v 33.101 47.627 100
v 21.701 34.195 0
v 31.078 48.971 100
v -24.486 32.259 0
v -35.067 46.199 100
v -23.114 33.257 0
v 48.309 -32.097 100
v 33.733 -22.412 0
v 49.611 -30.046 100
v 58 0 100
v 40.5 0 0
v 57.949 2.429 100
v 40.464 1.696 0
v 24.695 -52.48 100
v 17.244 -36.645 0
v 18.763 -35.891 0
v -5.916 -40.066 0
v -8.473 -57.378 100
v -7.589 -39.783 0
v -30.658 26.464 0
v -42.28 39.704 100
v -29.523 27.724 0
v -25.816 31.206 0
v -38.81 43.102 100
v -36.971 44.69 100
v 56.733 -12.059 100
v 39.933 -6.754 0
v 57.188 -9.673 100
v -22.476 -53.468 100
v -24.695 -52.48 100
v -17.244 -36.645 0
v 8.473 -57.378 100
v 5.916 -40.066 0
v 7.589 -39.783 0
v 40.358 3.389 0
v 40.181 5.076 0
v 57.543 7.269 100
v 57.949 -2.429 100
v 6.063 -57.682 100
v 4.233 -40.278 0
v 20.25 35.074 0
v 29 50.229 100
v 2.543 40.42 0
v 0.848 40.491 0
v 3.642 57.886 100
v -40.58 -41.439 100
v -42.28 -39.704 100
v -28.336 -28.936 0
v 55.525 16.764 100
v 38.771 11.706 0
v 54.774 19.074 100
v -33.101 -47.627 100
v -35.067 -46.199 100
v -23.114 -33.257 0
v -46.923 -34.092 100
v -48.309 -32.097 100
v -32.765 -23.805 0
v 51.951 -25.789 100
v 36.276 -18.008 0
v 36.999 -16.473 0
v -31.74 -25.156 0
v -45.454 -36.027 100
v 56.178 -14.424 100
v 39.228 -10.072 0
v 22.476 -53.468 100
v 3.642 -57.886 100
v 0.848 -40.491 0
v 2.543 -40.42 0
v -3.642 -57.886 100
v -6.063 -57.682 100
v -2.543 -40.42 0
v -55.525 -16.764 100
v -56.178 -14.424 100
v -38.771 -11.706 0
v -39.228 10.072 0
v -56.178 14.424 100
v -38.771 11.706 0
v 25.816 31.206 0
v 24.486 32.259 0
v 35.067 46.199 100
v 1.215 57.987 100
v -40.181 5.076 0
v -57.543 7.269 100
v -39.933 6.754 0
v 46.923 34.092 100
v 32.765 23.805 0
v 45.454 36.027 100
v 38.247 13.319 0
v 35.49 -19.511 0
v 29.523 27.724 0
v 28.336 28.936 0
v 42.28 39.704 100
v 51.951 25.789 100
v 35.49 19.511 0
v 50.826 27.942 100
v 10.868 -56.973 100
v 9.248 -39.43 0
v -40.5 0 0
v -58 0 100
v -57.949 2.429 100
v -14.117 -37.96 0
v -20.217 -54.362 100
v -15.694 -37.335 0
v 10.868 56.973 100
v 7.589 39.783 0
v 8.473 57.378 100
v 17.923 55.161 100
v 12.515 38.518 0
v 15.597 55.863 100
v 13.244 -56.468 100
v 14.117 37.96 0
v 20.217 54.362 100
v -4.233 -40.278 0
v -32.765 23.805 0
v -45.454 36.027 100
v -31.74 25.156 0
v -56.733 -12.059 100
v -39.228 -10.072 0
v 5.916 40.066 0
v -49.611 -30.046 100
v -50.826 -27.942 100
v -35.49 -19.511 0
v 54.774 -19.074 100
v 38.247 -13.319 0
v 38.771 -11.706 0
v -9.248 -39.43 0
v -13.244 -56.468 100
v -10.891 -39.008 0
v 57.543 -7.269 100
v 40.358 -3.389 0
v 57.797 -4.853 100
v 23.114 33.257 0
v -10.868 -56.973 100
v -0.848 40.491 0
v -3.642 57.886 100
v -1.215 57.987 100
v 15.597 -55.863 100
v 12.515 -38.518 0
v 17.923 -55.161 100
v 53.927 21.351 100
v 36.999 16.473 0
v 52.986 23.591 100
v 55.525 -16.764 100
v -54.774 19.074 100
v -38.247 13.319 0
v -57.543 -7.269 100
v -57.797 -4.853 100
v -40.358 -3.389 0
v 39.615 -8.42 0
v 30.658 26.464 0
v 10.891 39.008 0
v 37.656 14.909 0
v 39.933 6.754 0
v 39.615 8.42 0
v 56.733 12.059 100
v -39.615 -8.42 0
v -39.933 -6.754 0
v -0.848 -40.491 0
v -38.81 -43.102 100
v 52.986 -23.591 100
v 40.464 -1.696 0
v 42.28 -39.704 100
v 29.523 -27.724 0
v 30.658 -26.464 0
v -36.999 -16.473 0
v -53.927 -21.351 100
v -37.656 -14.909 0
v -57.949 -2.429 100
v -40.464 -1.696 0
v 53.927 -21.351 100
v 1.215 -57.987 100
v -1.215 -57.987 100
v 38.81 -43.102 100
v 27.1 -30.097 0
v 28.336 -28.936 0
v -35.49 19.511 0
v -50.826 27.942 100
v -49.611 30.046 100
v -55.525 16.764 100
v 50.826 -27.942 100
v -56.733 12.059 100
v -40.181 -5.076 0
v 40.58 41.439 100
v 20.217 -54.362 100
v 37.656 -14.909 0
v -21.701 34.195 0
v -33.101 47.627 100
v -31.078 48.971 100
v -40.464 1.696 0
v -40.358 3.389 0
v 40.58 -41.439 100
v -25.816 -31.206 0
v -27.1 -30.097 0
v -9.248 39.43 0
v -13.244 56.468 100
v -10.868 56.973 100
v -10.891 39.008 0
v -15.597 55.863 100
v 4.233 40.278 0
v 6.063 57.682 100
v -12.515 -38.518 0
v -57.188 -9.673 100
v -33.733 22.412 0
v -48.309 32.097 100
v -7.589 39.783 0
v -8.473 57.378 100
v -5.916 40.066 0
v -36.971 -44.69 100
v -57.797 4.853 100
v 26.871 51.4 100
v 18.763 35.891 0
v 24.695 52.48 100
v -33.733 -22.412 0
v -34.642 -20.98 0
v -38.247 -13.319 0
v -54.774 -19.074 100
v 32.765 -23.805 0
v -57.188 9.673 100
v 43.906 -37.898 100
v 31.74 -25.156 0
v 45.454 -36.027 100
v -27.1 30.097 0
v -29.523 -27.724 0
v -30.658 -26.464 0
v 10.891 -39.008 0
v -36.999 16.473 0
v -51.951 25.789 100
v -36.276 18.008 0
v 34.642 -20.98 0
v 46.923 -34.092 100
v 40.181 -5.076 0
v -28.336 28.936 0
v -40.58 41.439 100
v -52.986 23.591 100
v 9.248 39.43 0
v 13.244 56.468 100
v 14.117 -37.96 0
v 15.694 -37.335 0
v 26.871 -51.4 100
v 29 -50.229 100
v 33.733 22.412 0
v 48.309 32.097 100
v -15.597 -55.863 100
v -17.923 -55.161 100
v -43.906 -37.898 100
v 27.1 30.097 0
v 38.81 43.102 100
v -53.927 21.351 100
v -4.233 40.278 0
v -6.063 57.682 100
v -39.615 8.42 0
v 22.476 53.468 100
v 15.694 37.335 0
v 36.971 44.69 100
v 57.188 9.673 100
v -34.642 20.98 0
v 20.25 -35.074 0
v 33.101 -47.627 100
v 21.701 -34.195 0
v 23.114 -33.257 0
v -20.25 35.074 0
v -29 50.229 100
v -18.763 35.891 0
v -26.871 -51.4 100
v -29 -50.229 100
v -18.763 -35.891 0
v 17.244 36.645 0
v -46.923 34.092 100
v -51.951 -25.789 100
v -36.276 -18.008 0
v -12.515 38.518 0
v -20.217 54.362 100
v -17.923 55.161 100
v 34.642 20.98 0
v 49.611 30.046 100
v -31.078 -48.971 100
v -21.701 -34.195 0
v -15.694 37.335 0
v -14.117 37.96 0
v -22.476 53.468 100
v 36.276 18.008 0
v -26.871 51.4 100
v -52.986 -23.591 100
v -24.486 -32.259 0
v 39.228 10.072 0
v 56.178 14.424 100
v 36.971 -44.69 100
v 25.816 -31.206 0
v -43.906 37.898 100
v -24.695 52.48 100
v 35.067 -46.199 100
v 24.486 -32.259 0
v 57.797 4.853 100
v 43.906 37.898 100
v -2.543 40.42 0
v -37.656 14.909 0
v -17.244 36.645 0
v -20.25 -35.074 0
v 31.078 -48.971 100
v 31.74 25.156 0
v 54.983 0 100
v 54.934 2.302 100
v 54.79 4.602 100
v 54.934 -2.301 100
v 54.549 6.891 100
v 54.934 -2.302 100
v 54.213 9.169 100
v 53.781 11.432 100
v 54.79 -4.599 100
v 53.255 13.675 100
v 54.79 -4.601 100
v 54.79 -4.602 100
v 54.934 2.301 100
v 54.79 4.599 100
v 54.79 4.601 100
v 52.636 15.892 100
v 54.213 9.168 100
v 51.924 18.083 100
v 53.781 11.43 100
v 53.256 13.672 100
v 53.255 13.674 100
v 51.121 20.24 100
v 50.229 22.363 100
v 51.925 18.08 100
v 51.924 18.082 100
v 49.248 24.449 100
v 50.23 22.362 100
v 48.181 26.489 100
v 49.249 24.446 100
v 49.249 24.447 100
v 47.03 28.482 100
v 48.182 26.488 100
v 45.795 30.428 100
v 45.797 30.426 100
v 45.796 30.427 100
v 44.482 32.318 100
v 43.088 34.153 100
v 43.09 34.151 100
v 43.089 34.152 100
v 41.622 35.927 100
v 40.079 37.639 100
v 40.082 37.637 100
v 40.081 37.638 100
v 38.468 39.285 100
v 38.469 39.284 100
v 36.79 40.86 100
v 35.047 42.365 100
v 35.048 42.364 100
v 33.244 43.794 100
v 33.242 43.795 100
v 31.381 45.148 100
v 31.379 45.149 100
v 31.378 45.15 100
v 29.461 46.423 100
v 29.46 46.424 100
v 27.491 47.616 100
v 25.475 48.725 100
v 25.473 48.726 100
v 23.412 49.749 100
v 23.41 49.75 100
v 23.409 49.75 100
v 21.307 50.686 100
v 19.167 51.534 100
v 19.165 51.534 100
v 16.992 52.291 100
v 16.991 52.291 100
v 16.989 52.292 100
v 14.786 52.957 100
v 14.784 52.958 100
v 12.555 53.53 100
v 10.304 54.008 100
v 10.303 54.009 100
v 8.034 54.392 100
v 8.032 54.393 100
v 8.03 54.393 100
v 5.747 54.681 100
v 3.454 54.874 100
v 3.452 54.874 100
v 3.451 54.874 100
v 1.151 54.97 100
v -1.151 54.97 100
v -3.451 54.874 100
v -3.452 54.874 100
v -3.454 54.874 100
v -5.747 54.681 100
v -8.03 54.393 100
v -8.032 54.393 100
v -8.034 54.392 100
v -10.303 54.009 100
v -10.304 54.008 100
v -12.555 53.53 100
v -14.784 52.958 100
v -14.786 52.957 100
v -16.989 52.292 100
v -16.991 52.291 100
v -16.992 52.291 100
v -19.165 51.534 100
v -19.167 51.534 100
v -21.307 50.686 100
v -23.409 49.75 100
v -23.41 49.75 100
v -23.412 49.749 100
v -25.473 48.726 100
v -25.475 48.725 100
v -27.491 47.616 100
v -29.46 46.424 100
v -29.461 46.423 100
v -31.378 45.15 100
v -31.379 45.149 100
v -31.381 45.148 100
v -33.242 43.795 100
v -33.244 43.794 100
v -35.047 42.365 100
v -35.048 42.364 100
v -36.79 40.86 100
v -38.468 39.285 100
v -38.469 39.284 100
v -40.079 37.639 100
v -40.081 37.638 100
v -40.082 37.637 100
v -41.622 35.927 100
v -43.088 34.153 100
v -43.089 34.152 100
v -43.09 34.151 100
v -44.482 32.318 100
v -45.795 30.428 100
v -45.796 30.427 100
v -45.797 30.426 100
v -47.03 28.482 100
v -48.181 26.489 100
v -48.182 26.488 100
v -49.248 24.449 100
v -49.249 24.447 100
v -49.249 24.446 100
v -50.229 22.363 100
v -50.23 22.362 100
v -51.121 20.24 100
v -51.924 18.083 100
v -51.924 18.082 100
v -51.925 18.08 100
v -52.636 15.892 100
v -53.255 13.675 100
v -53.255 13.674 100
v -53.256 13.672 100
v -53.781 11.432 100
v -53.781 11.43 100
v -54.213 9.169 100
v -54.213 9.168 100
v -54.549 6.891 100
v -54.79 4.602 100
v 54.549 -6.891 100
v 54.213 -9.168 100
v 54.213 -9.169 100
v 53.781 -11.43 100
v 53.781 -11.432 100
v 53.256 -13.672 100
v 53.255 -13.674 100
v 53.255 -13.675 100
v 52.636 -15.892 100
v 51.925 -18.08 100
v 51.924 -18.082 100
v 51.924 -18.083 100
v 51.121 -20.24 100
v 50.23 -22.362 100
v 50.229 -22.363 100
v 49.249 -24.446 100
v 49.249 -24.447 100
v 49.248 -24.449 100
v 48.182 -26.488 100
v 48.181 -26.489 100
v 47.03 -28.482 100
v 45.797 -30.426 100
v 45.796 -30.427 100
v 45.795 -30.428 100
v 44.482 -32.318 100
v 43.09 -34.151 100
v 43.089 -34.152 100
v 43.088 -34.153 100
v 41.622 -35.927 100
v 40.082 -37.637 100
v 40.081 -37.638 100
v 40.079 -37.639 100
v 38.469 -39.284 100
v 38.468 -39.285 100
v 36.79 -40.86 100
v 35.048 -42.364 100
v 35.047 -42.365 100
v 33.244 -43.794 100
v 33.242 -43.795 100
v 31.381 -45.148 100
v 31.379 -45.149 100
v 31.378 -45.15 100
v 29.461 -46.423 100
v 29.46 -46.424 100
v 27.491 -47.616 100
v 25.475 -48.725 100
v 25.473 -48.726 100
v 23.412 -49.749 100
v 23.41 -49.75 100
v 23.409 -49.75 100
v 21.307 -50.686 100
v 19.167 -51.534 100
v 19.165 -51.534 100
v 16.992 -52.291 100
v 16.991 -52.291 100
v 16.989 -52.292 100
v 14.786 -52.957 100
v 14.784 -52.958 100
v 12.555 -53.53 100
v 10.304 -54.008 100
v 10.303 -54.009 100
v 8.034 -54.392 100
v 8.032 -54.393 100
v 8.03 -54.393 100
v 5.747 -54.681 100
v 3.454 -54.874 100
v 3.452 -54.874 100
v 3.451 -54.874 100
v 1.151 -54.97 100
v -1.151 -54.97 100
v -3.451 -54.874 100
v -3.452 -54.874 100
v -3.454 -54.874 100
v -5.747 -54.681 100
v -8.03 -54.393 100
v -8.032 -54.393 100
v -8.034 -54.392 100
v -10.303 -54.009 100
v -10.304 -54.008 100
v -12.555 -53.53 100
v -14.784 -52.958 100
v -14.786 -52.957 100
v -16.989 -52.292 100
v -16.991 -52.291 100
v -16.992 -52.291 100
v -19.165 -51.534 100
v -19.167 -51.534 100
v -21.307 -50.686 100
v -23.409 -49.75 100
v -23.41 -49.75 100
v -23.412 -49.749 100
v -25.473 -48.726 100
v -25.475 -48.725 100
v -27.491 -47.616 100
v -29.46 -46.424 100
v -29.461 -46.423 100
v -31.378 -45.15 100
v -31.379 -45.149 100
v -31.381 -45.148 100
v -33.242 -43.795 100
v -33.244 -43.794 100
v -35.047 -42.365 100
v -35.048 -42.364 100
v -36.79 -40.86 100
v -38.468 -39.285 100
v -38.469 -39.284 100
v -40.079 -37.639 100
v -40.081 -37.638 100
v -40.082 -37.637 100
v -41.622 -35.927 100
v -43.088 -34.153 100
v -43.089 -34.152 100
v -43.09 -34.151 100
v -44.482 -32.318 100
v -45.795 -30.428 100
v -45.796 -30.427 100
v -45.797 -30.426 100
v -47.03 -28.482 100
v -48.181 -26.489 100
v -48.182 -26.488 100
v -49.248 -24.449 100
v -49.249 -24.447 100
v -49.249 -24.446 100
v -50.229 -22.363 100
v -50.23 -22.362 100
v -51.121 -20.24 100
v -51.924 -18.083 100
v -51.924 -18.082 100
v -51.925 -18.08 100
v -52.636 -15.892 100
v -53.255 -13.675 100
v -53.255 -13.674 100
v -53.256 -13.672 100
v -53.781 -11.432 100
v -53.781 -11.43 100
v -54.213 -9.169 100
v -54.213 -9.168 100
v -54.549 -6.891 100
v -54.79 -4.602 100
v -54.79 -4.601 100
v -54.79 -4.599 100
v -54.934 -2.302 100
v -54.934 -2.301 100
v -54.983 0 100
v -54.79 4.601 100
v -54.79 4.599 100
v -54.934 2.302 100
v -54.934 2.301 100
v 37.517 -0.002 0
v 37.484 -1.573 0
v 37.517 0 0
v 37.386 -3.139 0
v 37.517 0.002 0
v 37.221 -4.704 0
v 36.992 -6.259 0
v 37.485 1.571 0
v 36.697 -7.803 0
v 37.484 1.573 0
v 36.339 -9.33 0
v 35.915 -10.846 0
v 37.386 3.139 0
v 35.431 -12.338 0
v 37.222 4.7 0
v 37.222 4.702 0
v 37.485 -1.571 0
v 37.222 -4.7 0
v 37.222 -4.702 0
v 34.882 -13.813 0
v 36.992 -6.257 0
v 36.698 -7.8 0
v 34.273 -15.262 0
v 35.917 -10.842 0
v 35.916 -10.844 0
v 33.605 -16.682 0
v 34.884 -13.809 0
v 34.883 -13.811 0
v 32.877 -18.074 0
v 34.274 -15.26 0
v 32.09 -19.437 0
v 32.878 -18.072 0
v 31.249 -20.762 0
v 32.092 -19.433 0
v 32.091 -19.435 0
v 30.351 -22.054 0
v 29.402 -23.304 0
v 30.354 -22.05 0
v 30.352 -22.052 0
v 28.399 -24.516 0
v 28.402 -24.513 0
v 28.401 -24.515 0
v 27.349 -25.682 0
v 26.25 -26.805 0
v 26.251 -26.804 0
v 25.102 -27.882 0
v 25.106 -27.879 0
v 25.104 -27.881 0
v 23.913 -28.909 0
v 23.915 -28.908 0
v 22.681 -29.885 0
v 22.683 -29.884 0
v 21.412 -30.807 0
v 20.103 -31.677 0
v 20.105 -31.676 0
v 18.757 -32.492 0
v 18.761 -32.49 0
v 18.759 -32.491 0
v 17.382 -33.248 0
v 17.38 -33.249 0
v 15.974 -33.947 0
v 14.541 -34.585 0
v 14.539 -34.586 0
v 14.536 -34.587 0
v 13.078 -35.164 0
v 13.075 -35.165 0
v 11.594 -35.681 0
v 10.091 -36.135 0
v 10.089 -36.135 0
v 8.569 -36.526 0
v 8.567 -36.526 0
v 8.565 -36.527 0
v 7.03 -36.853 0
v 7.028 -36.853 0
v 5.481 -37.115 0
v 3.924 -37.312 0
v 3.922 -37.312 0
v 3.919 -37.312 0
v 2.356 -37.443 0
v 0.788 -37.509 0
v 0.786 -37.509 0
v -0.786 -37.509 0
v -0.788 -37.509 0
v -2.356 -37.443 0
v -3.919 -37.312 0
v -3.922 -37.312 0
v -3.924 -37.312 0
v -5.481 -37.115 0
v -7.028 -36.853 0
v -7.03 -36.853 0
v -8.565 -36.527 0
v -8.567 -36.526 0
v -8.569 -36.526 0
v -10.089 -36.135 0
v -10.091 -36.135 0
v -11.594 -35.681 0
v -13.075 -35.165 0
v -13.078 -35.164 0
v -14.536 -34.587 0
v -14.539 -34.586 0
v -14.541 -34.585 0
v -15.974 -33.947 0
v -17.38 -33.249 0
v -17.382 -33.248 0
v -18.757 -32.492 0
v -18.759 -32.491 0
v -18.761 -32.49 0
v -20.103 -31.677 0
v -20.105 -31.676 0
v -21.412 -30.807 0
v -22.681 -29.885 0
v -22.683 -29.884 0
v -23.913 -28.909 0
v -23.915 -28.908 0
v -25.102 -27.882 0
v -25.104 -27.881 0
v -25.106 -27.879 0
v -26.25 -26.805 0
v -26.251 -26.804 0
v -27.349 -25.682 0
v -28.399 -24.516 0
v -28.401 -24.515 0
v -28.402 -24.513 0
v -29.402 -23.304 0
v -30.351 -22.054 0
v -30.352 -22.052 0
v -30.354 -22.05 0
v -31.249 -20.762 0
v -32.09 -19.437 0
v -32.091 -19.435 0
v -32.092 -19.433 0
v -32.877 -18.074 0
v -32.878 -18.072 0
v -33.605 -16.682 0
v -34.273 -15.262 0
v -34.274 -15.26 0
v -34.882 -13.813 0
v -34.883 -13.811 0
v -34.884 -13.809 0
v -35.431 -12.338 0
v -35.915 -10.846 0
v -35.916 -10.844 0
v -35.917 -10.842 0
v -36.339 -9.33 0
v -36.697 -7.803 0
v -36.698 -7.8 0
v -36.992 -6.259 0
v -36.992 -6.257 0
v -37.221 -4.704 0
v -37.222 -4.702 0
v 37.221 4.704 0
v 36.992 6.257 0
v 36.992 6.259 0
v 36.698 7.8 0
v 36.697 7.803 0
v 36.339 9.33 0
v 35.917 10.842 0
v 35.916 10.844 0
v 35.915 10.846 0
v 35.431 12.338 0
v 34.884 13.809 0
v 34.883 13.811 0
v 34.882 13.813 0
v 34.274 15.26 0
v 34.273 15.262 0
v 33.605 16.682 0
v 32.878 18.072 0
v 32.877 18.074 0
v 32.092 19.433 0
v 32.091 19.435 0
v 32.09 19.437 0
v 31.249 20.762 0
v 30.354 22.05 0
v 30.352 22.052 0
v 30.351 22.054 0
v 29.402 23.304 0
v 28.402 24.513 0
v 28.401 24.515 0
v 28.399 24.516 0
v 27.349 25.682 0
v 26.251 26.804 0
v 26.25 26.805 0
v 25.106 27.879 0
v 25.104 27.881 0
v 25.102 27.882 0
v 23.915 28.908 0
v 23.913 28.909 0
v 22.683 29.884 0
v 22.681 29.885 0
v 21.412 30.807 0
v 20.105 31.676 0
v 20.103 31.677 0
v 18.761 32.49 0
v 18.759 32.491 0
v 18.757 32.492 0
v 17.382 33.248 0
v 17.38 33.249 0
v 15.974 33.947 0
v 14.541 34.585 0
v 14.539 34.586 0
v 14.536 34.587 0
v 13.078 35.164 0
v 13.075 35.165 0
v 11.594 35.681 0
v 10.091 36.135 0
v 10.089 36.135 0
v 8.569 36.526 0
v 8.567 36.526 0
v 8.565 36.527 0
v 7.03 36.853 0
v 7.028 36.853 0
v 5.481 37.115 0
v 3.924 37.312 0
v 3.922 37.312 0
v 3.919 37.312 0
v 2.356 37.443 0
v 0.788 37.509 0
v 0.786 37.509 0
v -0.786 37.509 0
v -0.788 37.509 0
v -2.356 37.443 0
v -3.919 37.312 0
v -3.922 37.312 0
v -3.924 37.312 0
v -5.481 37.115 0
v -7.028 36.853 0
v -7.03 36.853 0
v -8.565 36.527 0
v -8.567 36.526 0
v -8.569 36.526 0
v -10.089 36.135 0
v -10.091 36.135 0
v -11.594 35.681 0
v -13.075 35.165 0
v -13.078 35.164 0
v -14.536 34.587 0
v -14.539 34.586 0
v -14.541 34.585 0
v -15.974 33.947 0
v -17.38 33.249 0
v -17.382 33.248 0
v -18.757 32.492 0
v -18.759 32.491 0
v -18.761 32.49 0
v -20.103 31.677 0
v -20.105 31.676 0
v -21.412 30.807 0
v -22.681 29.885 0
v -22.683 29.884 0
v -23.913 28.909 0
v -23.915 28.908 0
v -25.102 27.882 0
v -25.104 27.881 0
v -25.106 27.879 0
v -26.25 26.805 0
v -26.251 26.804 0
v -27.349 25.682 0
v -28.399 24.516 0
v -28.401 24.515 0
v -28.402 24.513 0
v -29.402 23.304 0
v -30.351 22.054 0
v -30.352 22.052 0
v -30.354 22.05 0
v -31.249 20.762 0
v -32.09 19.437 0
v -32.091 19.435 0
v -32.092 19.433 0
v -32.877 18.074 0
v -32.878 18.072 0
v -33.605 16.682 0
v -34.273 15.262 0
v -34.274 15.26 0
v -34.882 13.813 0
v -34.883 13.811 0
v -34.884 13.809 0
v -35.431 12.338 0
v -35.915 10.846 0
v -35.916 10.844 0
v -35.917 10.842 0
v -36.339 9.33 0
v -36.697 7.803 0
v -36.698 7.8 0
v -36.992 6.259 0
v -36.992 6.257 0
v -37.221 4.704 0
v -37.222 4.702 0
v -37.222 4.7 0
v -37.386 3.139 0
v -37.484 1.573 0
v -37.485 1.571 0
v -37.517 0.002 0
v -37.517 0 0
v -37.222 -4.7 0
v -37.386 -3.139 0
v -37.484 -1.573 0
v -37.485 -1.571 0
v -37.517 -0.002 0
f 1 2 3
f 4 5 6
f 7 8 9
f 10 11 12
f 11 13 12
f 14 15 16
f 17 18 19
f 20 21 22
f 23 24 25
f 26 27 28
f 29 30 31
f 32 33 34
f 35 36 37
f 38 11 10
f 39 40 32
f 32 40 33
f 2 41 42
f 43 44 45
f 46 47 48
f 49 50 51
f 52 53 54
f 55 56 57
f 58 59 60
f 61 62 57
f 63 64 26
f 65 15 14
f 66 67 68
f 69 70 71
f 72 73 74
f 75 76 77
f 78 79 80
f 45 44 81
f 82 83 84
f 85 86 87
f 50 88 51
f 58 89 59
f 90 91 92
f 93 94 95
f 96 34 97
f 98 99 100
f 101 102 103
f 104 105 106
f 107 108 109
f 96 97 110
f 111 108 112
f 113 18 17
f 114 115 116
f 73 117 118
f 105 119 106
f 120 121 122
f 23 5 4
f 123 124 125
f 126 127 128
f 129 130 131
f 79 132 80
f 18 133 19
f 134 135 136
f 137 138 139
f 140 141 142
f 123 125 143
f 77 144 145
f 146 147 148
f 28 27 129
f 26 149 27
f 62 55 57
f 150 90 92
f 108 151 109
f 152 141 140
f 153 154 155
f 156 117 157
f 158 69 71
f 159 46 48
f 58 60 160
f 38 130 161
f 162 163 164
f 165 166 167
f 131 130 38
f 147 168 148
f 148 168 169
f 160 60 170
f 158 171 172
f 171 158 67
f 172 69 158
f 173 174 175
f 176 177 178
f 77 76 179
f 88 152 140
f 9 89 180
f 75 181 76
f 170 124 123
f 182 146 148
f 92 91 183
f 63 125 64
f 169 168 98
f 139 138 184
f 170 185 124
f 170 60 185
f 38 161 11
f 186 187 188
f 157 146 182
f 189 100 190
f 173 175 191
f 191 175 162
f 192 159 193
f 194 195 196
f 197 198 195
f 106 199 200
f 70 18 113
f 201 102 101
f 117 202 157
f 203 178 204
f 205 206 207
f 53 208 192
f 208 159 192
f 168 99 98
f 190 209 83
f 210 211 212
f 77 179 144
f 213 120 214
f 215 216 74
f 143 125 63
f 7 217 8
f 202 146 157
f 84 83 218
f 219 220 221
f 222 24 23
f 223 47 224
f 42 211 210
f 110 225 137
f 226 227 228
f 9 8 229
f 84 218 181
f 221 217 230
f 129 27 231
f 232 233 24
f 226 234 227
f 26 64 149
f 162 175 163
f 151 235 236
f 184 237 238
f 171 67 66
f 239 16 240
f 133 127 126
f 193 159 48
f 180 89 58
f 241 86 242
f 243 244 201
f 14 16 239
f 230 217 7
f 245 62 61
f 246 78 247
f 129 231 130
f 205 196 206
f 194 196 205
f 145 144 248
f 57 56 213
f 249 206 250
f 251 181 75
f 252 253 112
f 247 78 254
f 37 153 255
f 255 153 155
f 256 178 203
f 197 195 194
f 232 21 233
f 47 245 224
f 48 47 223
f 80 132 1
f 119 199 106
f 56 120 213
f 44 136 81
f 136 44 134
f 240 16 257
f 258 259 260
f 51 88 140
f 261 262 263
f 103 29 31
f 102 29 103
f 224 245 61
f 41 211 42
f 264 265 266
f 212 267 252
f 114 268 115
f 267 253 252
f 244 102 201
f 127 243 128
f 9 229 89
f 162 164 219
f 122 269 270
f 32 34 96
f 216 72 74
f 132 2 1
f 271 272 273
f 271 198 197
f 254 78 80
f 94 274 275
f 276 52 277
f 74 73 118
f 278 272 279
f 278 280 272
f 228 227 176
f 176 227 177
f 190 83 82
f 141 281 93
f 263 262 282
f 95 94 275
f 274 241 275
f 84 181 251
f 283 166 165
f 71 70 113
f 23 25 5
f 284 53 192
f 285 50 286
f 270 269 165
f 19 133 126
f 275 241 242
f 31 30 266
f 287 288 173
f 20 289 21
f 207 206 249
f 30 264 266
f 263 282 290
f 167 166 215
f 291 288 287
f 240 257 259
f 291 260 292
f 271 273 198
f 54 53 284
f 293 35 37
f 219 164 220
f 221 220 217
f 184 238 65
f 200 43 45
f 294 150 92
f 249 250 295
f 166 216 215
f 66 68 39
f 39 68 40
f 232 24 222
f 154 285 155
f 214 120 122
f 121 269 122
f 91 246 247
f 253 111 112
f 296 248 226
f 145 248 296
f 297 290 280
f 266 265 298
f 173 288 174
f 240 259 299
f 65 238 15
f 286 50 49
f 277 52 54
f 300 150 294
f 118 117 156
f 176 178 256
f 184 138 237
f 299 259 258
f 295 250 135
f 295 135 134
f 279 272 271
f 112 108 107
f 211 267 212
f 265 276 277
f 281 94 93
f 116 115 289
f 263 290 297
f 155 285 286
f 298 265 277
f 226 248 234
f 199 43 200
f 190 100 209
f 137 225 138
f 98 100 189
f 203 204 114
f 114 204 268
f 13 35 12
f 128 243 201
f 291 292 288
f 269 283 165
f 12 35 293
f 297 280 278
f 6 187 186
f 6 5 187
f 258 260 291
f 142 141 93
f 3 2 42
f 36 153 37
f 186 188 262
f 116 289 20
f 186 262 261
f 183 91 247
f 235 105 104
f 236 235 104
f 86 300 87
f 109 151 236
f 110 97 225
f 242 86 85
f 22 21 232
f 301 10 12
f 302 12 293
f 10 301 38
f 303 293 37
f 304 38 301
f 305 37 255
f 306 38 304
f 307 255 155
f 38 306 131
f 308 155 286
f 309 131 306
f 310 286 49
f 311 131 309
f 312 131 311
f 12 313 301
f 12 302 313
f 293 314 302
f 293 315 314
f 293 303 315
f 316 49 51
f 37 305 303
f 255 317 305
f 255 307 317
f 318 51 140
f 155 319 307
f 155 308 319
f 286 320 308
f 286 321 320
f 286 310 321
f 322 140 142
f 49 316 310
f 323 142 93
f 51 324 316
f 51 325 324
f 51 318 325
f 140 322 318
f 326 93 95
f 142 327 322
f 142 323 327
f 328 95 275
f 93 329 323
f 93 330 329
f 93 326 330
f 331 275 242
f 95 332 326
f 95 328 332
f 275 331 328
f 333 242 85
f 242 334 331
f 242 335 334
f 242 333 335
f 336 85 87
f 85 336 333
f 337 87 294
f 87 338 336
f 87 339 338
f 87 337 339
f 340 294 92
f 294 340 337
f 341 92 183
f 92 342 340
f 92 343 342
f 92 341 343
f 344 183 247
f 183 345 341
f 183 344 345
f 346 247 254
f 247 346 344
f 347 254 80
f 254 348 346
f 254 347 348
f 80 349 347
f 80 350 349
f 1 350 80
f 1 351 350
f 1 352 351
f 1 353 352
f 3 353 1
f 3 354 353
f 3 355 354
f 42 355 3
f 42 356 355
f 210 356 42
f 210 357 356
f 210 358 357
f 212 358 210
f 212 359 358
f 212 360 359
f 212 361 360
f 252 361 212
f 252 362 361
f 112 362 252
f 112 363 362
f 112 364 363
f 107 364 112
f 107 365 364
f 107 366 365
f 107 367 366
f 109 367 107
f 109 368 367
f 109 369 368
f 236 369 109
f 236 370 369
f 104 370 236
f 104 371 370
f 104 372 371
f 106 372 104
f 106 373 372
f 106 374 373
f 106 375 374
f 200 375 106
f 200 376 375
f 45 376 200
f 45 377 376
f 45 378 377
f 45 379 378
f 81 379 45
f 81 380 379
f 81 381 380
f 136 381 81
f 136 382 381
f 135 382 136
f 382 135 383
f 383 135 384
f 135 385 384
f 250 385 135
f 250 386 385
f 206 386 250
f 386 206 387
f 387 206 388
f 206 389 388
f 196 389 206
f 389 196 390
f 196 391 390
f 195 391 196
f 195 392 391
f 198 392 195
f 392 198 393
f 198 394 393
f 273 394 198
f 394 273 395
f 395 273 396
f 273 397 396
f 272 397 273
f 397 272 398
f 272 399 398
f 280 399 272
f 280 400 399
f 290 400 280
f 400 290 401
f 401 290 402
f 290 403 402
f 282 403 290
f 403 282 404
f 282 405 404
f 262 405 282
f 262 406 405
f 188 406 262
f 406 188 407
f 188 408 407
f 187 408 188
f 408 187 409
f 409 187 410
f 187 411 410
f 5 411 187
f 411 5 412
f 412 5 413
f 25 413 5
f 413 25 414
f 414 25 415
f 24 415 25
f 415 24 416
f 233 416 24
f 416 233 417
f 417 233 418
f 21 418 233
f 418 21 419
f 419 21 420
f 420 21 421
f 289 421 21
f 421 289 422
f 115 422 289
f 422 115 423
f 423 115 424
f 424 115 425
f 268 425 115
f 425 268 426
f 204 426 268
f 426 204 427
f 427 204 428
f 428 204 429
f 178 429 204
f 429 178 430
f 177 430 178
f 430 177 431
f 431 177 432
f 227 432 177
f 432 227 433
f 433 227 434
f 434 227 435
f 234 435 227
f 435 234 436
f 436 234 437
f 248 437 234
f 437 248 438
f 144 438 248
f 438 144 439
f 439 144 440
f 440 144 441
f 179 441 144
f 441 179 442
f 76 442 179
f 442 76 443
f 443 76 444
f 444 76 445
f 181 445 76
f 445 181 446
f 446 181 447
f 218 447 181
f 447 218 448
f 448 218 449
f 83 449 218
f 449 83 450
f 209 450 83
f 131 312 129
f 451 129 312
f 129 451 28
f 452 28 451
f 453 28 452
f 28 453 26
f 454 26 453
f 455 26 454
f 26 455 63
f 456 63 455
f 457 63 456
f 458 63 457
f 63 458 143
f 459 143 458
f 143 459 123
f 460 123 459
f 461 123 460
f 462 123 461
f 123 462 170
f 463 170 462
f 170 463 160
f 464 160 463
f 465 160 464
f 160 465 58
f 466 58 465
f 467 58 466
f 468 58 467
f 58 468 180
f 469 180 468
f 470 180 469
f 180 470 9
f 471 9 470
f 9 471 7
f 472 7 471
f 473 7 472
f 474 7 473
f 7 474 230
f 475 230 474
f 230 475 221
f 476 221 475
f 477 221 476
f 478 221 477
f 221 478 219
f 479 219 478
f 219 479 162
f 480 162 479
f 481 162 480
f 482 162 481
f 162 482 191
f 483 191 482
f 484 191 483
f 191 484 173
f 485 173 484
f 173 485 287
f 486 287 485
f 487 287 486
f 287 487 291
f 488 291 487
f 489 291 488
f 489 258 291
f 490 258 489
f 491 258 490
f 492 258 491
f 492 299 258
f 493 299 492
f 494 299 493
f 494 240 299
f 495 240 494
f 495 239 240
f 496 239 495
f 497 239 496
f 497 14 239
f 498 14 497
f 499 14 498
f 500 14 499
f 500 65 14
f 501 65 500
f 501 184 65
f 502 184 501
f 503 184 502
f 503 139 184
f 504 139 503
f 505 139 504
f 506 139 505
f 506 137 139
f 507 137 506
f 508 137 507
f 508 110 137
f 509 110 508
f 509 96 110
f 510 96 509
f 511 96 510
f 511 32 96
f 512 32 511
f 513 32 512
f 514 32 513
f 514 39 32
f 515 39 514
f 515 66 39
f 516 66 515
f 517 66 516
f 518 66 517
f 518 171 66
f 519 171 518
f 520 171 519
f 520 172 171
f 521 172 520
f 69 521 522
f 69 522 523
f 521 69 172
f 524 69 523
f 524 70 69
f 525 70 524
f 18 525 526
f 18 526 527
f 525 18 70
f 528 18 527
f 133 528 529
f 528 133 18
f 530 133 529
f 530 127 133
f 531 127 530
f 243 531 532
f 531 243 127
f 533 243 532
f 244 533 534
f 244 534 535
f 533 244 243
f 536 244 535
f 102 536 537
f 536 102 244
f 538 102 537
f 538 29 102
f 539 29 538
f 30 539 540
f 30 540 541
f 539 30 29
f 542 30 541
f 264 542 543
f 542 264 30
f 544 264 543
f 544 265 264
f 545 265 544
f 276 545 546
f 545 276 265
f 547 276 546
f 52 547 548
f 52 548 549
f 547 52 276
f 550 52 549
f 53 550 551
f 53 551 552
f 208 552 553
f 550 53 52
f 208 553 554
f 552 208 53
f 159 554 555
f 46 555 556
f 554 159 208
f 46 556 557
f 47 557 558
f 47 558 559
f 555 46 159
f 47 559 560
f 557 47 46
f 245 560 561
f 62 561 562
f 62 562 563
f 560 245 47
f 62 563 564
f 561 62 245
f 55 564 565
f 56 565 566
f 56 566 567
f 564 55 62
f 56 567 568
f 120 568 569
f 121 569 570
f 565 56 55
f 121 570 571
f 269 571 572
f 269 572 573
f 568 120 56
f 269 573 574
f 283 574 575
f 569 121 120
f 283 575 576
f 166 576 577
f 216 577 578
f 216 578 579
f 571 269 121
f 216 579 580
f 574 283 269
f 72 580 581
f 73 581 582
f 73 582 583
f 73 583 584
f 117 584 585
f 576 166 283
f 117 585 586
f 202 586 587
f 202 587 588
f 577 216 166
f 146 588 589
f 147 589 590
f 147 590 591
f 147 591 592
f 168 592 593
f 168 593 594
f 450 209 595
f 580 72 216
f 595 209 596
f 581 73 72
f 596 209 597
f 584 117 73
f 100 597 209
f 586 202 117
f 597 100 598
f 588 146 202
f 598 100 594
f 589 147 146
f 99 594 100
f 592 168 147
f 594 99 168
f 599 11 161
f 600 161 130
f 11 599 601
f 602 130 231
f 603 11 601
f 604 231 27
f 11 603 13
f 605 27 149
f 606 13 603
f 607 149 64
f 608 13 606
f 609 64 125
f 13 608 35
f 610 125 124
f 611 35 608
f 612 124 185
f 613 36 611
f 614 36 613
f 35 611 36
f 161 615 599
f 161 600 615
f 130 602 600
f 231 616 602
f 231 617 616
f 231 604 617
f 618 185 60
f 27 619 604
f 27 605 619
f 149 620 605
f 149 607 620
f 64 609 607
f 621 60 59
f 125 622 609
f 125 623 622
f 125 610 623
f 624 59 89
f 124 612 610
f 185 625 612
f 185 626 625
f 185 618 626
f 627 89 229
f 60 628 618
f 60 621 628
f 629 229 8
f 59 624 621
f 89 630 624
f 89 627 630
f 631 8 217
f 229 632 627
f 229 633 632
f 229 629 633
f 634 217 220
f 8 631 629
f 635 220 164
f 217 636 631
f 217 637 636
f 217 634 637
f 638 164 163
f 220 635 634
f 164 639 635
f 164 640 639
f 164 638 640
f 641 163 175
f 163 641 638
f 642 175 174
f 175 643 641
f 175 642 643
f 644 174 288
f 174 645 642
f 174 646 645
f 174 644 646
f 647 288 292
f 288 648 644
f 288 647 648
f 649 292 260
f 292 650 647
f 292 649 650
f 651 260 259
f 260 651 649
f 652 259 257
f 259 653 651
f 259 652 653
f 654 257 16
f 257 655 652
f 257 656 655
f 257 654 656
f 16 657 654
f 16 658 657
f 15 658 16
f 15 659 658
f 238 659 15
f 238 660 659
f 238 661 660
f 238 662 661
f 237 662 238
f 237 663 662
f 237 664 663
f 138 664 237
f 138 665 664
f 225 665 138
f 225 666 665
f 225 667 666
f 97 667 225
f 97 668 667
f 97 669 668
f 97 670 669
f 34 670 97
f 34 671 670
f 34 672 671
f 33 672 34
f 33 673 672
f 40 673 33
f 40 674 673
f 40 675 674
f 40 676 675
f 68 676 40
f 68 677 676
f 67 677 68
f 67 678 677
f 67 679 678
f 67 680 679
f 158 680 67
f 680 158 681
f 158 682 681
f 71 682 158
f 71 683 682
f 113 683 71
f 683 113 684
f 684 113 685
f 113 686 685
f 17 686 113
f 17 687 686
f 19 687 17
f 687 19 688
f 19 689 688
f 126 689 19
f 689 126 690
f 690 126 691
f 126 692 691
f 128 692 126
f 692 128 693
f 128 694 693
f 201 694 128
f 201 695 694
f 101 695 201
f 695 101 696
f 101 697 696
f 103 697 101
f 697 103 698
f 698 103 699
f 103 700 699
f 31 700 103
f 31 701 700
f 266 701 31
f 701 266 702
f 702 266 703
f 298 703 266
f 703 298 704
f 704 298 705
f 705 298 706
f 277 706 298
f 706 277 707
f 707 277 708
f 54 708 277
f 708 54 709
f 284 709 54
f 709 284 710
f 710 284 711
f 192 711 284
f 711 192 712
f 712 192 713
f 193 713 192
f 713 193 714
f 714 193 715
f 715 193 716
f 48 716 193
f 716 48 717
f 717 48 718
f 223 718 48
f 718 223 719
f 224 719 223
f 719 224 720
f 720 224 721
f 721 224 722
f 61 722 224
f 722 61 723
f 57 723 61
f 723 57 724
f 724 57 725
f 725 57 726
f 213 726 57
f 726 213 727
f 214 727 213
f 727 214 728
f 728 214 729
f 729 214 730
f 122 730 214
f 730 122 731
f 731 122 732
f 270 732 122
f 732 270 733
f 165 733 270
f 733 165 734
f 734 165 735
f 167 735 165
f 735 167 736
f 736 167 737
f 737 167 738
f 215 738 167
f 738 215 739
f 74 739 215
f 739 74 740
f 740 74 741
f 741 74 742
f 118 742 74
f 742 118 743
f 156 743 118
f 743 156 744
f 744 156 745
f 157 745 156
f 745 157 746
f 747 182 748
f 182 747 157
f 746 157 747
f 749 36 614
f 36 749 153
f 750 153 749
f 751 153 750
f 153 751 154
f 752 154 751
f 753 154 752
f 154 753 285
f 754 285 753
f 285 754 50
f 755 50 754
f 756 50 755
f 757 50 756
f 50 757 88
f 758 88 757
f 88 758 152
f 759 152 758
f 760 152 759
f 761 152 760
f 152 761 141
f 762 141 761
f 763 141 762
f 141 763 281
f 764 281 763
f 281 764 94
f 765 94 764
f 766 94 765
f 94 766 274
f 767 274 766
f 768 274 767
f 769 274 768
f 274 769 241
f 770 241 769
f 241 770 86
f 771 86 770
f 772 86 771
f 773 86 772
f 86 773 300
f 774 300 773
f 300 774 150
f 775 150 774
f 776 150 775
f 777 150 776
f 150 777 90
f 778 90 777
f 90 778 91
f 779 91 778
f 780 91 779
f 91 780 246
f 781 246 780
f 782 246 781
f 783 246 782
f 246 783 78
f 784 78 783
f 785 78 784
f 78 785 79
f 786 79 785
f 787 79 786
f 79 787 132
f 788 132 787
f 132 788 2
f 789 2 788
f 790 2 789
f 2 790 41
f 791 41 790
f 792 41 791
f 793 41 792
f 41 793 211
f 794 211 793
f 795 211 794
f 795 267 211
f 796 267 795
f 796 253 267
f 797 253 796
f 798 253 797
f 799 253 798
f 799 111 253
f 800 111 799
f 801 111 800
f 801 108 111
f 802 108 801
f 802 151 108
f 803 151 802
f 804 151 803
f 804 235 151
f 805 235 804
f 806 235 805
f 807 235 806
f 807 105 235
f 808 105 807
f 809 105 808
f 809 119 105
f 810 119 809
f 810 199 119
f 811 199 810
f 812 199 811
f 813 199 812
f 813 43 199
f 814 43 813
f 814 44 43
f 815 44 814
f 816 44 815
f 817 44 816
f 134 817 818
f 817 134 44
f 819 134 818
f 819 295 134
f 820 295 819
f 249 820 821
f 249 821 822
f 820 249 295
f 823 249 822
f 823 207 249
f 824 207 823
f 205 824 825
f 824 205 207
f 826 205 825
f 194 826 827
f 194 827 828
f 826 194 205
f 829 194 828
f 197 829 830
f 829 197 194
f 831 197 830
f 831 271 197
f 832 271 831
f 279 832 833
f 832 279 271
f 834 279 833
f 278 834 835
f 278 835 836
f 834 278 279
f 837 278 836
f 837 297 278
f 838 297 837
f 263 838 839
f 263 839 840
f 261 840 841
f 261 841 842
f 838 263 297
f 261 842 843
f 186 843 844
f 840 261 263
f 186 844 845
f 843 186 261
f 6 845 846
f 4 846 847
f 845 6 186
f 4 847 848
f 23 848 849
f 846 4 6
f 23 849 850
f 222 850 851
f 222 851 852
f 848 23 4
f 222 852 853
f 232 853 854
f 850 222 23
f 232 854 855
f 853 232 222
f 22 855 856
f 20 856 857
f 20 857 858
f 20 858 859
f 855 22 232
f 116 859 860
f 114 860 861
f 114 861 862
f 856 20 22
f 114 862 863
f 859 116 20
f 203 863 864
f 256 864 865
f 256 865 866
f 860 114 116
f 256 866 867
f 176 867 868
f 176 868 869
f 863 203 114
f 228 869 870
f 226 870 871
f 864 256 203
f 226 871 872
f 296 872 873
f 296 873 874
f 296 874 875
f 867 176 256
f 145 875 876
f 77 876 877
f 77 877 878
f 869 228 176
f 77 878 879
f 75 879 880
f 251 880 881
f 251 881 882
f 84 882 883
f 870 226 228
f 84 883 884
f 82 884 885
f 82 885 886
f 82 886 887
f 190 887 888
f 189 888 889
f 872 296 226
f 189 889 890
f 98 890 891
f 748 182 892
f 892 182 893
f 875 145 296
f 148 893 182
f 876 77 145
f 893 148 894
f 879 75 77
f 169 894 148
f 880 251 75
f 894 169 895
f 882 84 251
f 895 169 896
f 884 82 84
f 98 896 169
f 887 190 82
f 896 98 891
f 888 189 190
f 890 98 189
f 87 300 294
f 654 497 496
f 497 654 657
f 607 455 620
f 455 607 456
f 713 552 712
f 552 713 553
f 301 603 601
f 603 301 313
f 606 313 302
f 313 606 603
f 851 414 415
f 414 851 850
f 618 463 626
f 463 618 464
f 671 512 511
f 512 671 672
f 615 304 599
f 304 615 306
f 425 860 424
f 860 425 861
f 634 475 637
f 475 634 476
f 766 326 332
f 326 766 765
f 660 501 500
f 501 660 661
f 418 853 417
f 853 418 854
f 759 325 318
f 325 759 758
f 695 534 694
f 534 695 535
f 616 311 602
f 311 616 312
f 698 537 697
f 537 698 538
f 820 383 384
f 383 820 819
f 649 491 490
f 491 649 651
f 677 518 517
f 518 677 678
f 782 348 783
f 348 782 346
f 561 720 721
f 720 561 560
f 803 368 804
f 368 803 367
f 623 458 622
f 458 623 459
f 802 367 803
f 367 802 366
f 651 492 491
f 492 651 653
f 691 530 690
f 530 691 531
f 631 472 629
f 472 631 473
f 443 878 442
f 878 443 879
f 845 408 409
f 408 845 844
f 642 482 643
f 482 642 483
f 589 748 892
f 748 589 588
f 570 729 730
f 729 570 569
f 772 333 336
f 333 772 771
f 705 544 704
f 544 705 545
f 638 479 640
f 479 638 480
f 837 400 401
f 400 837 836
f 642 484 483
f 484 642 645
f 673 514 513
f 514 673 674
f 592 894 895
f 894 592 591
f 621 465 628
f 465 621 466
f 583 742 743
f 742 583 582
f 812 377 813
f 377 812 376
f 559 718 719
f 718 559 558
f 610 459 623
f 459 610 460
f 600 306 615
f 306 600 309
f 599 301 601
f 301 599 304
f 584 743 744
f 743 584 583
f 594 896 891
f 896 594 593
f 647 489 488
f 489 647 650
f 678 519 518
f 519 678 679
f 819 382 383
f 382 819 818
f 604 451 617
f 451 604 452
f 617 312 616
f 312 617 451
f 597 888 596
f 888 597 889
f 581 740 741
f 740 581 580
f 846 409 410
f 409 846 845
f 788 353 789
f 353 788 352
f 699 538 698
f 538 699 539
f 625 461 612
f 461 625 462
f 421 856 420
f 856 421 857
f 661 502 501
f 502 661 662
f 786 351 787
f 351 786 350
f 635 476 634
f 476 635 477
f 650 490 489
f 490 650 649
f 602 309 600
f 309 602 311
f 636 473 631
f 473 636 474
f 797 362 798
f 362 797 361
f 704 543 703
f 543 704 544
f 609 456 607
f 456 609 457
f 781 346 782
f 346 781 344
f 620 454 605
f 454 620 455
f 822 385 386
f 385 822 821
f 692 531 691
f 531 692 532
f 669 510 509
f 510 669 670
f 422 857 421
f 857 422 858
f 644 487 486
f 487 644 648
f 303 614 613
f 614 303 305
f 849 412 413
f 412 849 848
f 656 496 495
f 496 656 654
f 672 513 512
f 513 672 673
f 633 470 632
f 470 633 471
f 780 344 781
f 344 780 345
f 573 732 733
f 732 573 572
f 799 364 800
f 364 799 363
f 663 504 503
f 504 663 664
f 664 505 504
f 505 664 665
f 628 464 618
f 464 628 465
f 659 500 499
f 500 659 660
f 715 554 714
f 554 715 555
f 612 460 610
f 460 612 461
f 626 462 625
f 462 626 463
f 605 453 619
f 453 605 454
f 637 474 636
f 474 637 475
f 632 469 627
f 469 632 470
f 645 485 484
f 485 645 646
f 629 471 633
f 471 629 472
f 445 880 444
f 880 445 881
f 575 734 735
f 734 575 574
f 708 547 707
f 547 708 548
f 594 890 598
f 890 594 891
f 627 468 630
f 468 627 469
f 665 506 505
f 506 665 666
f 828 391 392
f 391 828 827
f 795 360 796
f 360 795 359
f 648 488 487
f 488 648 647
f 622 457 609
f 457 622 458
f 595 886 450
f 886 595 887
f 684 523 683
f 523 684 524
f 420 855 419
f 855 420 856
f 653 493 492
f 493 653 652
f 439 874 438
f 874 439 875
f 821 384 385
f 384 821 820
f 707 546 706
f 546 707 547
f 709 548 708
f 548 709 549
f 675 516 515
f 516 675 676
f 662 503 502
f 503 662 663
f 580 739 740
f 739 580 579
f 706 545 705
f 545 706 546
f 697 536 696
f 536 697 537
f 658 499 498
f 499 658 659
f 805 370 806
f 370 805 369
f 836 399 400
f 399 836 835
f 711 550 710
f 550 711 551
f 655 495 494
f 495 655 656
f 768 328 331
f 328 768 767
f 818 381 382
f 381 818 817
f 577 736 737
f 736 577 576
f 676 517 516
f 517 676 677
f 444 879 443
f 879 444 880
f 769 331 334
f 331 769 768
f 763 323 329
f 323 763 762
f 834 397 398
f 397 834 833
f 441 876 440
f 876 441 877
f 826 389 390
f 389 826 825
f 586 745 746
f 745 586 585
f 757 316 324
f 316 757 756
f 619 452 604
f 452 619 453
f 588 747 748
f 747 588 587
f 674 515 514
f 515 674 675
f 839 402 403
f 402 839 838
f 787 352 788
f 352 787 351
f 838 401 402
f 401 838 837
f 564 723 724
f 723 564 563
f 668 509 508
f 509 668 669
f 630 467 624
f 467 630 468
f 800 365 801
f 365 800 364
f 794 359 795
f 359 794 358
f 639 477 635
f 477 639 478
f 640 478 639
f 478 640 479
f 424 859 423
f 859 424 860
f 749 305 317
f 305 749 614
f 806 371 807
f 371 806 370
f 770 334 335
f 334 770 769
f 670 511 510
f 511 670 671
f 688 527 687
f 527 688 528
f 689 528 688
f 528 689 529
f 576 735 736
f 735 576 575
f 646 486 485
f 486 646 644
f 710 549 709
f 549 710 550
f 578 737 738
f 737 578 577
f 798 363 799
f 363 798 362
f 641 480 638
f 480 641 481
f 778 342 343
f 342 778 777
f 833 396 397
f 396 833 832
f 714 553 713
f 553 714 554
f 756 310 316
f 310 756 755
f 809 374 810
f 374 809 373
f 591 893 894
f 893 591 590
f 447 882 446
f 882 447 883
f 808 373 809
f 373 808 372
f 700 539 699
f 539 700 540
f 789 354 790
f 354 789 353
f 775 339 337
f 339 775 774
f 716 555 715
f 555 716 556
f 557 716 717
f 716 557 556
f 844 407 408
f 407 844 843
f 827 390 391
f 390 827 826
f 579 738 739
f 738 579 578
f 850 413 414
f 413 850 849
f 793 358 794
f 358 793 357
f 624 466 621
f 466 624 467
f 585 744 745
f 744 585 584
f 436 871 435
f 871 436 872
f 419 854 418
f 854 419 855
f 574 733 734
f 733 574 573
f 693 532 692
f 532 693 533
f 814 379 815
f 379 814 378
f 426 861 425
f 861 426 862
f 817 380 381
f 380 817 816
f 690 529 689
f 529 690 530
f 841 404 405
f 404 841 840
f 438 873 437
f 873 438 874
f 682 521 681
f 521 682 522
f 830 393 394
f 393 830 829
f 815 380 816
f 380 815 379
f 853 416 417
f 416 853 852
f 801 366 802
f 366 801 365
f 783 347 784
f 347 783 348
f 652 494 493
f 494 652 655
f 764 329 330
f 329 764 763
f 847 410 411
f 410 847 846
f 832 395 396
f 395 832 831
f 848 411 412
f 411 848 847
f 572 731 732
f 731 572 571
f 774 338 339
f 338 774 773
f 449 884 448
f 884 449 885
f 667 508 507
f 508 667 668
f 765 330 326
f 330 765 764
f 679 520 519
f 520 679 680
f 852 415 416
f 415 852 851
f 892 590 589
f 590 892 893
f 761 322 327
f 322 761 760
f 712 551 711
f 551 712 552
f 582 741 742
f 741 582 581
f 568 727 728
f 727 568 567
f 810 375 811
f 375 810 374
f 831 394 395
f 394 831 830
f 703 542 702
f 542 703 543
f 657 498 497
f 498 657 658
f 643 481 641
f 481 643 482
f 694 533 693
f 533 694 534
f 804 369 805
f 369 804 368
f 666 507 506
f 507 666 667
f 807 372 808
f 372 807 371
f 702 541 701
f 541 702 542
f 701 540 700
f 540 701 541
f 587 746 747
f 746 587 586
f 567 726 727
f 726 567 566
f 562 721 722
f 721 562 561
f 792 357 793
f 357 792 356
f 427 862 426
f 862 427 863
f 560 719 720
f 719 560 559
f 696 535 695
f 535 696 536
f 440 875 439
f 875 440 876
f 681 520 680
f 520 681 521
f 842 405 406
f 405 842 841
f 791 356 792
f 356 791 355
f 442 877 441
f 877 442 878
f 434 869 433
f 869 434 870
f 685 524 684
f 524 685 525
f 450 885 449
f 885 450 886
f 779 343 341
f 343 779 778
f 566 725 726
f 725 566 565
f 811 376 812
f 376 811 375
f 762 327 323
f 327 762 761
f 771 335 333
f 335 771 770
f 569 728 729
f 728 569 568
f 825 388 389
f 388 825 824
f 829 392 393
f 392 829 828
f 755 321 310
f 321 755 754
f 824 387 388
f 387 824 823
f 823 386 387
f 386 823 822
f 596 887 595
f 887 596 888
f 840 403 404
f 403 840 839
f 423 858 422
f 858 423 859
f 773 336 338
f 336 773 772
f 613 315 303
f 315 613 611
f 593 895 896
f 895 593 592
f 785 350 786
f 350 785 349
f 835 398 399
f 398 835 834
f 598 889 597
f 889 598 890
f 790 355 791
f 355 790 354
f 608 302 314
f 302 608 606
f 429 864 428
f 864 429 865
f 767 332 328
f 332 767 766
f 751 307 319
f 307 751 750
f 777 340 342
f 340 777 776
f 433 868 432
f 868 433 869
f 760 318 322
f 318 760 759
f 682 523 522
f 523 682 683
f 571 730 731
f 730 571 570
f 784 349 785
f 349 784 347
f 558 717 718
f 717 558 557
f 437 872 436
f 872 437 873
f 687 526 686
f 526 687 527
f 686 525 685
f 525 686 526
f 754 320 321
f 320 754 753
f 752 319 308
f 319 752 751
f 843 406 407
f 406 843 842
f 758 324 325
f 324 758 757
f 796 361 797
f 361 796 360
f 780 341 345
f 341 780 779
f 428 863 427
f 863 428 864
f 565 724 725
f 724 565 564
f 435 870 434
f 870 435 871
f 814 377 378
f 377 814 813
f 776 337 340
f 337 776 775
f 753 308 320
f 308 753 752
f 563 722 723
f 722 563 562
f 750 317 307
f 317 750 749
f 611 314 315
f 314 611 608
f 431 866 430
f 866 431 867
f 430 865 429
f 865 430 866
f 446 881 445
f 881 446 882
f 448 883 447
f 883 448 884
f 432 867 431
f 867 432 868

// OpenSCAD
$fn = 150;

// Afmetingen in mm
diameter_boven = 110;
diameter_onder = 75;

hoogte = 100;
wanddikte = 3;

// Trechter
module trechter() {
    difference() {
        // Buitenkant
        cylinder(
            h = hoogte,
            d1 = diameter_onder + 2*wanddikte,
            d2 = diameter_boven + 2*wanddikte
        );

        // Binnenkant
        translate([0, 0, -0.1])
            cylinder(
                h = hoogte + 0.2,
                d1 = diameter_onder,
                d2 = diameter_boven
            );
    }
}

trechter();
